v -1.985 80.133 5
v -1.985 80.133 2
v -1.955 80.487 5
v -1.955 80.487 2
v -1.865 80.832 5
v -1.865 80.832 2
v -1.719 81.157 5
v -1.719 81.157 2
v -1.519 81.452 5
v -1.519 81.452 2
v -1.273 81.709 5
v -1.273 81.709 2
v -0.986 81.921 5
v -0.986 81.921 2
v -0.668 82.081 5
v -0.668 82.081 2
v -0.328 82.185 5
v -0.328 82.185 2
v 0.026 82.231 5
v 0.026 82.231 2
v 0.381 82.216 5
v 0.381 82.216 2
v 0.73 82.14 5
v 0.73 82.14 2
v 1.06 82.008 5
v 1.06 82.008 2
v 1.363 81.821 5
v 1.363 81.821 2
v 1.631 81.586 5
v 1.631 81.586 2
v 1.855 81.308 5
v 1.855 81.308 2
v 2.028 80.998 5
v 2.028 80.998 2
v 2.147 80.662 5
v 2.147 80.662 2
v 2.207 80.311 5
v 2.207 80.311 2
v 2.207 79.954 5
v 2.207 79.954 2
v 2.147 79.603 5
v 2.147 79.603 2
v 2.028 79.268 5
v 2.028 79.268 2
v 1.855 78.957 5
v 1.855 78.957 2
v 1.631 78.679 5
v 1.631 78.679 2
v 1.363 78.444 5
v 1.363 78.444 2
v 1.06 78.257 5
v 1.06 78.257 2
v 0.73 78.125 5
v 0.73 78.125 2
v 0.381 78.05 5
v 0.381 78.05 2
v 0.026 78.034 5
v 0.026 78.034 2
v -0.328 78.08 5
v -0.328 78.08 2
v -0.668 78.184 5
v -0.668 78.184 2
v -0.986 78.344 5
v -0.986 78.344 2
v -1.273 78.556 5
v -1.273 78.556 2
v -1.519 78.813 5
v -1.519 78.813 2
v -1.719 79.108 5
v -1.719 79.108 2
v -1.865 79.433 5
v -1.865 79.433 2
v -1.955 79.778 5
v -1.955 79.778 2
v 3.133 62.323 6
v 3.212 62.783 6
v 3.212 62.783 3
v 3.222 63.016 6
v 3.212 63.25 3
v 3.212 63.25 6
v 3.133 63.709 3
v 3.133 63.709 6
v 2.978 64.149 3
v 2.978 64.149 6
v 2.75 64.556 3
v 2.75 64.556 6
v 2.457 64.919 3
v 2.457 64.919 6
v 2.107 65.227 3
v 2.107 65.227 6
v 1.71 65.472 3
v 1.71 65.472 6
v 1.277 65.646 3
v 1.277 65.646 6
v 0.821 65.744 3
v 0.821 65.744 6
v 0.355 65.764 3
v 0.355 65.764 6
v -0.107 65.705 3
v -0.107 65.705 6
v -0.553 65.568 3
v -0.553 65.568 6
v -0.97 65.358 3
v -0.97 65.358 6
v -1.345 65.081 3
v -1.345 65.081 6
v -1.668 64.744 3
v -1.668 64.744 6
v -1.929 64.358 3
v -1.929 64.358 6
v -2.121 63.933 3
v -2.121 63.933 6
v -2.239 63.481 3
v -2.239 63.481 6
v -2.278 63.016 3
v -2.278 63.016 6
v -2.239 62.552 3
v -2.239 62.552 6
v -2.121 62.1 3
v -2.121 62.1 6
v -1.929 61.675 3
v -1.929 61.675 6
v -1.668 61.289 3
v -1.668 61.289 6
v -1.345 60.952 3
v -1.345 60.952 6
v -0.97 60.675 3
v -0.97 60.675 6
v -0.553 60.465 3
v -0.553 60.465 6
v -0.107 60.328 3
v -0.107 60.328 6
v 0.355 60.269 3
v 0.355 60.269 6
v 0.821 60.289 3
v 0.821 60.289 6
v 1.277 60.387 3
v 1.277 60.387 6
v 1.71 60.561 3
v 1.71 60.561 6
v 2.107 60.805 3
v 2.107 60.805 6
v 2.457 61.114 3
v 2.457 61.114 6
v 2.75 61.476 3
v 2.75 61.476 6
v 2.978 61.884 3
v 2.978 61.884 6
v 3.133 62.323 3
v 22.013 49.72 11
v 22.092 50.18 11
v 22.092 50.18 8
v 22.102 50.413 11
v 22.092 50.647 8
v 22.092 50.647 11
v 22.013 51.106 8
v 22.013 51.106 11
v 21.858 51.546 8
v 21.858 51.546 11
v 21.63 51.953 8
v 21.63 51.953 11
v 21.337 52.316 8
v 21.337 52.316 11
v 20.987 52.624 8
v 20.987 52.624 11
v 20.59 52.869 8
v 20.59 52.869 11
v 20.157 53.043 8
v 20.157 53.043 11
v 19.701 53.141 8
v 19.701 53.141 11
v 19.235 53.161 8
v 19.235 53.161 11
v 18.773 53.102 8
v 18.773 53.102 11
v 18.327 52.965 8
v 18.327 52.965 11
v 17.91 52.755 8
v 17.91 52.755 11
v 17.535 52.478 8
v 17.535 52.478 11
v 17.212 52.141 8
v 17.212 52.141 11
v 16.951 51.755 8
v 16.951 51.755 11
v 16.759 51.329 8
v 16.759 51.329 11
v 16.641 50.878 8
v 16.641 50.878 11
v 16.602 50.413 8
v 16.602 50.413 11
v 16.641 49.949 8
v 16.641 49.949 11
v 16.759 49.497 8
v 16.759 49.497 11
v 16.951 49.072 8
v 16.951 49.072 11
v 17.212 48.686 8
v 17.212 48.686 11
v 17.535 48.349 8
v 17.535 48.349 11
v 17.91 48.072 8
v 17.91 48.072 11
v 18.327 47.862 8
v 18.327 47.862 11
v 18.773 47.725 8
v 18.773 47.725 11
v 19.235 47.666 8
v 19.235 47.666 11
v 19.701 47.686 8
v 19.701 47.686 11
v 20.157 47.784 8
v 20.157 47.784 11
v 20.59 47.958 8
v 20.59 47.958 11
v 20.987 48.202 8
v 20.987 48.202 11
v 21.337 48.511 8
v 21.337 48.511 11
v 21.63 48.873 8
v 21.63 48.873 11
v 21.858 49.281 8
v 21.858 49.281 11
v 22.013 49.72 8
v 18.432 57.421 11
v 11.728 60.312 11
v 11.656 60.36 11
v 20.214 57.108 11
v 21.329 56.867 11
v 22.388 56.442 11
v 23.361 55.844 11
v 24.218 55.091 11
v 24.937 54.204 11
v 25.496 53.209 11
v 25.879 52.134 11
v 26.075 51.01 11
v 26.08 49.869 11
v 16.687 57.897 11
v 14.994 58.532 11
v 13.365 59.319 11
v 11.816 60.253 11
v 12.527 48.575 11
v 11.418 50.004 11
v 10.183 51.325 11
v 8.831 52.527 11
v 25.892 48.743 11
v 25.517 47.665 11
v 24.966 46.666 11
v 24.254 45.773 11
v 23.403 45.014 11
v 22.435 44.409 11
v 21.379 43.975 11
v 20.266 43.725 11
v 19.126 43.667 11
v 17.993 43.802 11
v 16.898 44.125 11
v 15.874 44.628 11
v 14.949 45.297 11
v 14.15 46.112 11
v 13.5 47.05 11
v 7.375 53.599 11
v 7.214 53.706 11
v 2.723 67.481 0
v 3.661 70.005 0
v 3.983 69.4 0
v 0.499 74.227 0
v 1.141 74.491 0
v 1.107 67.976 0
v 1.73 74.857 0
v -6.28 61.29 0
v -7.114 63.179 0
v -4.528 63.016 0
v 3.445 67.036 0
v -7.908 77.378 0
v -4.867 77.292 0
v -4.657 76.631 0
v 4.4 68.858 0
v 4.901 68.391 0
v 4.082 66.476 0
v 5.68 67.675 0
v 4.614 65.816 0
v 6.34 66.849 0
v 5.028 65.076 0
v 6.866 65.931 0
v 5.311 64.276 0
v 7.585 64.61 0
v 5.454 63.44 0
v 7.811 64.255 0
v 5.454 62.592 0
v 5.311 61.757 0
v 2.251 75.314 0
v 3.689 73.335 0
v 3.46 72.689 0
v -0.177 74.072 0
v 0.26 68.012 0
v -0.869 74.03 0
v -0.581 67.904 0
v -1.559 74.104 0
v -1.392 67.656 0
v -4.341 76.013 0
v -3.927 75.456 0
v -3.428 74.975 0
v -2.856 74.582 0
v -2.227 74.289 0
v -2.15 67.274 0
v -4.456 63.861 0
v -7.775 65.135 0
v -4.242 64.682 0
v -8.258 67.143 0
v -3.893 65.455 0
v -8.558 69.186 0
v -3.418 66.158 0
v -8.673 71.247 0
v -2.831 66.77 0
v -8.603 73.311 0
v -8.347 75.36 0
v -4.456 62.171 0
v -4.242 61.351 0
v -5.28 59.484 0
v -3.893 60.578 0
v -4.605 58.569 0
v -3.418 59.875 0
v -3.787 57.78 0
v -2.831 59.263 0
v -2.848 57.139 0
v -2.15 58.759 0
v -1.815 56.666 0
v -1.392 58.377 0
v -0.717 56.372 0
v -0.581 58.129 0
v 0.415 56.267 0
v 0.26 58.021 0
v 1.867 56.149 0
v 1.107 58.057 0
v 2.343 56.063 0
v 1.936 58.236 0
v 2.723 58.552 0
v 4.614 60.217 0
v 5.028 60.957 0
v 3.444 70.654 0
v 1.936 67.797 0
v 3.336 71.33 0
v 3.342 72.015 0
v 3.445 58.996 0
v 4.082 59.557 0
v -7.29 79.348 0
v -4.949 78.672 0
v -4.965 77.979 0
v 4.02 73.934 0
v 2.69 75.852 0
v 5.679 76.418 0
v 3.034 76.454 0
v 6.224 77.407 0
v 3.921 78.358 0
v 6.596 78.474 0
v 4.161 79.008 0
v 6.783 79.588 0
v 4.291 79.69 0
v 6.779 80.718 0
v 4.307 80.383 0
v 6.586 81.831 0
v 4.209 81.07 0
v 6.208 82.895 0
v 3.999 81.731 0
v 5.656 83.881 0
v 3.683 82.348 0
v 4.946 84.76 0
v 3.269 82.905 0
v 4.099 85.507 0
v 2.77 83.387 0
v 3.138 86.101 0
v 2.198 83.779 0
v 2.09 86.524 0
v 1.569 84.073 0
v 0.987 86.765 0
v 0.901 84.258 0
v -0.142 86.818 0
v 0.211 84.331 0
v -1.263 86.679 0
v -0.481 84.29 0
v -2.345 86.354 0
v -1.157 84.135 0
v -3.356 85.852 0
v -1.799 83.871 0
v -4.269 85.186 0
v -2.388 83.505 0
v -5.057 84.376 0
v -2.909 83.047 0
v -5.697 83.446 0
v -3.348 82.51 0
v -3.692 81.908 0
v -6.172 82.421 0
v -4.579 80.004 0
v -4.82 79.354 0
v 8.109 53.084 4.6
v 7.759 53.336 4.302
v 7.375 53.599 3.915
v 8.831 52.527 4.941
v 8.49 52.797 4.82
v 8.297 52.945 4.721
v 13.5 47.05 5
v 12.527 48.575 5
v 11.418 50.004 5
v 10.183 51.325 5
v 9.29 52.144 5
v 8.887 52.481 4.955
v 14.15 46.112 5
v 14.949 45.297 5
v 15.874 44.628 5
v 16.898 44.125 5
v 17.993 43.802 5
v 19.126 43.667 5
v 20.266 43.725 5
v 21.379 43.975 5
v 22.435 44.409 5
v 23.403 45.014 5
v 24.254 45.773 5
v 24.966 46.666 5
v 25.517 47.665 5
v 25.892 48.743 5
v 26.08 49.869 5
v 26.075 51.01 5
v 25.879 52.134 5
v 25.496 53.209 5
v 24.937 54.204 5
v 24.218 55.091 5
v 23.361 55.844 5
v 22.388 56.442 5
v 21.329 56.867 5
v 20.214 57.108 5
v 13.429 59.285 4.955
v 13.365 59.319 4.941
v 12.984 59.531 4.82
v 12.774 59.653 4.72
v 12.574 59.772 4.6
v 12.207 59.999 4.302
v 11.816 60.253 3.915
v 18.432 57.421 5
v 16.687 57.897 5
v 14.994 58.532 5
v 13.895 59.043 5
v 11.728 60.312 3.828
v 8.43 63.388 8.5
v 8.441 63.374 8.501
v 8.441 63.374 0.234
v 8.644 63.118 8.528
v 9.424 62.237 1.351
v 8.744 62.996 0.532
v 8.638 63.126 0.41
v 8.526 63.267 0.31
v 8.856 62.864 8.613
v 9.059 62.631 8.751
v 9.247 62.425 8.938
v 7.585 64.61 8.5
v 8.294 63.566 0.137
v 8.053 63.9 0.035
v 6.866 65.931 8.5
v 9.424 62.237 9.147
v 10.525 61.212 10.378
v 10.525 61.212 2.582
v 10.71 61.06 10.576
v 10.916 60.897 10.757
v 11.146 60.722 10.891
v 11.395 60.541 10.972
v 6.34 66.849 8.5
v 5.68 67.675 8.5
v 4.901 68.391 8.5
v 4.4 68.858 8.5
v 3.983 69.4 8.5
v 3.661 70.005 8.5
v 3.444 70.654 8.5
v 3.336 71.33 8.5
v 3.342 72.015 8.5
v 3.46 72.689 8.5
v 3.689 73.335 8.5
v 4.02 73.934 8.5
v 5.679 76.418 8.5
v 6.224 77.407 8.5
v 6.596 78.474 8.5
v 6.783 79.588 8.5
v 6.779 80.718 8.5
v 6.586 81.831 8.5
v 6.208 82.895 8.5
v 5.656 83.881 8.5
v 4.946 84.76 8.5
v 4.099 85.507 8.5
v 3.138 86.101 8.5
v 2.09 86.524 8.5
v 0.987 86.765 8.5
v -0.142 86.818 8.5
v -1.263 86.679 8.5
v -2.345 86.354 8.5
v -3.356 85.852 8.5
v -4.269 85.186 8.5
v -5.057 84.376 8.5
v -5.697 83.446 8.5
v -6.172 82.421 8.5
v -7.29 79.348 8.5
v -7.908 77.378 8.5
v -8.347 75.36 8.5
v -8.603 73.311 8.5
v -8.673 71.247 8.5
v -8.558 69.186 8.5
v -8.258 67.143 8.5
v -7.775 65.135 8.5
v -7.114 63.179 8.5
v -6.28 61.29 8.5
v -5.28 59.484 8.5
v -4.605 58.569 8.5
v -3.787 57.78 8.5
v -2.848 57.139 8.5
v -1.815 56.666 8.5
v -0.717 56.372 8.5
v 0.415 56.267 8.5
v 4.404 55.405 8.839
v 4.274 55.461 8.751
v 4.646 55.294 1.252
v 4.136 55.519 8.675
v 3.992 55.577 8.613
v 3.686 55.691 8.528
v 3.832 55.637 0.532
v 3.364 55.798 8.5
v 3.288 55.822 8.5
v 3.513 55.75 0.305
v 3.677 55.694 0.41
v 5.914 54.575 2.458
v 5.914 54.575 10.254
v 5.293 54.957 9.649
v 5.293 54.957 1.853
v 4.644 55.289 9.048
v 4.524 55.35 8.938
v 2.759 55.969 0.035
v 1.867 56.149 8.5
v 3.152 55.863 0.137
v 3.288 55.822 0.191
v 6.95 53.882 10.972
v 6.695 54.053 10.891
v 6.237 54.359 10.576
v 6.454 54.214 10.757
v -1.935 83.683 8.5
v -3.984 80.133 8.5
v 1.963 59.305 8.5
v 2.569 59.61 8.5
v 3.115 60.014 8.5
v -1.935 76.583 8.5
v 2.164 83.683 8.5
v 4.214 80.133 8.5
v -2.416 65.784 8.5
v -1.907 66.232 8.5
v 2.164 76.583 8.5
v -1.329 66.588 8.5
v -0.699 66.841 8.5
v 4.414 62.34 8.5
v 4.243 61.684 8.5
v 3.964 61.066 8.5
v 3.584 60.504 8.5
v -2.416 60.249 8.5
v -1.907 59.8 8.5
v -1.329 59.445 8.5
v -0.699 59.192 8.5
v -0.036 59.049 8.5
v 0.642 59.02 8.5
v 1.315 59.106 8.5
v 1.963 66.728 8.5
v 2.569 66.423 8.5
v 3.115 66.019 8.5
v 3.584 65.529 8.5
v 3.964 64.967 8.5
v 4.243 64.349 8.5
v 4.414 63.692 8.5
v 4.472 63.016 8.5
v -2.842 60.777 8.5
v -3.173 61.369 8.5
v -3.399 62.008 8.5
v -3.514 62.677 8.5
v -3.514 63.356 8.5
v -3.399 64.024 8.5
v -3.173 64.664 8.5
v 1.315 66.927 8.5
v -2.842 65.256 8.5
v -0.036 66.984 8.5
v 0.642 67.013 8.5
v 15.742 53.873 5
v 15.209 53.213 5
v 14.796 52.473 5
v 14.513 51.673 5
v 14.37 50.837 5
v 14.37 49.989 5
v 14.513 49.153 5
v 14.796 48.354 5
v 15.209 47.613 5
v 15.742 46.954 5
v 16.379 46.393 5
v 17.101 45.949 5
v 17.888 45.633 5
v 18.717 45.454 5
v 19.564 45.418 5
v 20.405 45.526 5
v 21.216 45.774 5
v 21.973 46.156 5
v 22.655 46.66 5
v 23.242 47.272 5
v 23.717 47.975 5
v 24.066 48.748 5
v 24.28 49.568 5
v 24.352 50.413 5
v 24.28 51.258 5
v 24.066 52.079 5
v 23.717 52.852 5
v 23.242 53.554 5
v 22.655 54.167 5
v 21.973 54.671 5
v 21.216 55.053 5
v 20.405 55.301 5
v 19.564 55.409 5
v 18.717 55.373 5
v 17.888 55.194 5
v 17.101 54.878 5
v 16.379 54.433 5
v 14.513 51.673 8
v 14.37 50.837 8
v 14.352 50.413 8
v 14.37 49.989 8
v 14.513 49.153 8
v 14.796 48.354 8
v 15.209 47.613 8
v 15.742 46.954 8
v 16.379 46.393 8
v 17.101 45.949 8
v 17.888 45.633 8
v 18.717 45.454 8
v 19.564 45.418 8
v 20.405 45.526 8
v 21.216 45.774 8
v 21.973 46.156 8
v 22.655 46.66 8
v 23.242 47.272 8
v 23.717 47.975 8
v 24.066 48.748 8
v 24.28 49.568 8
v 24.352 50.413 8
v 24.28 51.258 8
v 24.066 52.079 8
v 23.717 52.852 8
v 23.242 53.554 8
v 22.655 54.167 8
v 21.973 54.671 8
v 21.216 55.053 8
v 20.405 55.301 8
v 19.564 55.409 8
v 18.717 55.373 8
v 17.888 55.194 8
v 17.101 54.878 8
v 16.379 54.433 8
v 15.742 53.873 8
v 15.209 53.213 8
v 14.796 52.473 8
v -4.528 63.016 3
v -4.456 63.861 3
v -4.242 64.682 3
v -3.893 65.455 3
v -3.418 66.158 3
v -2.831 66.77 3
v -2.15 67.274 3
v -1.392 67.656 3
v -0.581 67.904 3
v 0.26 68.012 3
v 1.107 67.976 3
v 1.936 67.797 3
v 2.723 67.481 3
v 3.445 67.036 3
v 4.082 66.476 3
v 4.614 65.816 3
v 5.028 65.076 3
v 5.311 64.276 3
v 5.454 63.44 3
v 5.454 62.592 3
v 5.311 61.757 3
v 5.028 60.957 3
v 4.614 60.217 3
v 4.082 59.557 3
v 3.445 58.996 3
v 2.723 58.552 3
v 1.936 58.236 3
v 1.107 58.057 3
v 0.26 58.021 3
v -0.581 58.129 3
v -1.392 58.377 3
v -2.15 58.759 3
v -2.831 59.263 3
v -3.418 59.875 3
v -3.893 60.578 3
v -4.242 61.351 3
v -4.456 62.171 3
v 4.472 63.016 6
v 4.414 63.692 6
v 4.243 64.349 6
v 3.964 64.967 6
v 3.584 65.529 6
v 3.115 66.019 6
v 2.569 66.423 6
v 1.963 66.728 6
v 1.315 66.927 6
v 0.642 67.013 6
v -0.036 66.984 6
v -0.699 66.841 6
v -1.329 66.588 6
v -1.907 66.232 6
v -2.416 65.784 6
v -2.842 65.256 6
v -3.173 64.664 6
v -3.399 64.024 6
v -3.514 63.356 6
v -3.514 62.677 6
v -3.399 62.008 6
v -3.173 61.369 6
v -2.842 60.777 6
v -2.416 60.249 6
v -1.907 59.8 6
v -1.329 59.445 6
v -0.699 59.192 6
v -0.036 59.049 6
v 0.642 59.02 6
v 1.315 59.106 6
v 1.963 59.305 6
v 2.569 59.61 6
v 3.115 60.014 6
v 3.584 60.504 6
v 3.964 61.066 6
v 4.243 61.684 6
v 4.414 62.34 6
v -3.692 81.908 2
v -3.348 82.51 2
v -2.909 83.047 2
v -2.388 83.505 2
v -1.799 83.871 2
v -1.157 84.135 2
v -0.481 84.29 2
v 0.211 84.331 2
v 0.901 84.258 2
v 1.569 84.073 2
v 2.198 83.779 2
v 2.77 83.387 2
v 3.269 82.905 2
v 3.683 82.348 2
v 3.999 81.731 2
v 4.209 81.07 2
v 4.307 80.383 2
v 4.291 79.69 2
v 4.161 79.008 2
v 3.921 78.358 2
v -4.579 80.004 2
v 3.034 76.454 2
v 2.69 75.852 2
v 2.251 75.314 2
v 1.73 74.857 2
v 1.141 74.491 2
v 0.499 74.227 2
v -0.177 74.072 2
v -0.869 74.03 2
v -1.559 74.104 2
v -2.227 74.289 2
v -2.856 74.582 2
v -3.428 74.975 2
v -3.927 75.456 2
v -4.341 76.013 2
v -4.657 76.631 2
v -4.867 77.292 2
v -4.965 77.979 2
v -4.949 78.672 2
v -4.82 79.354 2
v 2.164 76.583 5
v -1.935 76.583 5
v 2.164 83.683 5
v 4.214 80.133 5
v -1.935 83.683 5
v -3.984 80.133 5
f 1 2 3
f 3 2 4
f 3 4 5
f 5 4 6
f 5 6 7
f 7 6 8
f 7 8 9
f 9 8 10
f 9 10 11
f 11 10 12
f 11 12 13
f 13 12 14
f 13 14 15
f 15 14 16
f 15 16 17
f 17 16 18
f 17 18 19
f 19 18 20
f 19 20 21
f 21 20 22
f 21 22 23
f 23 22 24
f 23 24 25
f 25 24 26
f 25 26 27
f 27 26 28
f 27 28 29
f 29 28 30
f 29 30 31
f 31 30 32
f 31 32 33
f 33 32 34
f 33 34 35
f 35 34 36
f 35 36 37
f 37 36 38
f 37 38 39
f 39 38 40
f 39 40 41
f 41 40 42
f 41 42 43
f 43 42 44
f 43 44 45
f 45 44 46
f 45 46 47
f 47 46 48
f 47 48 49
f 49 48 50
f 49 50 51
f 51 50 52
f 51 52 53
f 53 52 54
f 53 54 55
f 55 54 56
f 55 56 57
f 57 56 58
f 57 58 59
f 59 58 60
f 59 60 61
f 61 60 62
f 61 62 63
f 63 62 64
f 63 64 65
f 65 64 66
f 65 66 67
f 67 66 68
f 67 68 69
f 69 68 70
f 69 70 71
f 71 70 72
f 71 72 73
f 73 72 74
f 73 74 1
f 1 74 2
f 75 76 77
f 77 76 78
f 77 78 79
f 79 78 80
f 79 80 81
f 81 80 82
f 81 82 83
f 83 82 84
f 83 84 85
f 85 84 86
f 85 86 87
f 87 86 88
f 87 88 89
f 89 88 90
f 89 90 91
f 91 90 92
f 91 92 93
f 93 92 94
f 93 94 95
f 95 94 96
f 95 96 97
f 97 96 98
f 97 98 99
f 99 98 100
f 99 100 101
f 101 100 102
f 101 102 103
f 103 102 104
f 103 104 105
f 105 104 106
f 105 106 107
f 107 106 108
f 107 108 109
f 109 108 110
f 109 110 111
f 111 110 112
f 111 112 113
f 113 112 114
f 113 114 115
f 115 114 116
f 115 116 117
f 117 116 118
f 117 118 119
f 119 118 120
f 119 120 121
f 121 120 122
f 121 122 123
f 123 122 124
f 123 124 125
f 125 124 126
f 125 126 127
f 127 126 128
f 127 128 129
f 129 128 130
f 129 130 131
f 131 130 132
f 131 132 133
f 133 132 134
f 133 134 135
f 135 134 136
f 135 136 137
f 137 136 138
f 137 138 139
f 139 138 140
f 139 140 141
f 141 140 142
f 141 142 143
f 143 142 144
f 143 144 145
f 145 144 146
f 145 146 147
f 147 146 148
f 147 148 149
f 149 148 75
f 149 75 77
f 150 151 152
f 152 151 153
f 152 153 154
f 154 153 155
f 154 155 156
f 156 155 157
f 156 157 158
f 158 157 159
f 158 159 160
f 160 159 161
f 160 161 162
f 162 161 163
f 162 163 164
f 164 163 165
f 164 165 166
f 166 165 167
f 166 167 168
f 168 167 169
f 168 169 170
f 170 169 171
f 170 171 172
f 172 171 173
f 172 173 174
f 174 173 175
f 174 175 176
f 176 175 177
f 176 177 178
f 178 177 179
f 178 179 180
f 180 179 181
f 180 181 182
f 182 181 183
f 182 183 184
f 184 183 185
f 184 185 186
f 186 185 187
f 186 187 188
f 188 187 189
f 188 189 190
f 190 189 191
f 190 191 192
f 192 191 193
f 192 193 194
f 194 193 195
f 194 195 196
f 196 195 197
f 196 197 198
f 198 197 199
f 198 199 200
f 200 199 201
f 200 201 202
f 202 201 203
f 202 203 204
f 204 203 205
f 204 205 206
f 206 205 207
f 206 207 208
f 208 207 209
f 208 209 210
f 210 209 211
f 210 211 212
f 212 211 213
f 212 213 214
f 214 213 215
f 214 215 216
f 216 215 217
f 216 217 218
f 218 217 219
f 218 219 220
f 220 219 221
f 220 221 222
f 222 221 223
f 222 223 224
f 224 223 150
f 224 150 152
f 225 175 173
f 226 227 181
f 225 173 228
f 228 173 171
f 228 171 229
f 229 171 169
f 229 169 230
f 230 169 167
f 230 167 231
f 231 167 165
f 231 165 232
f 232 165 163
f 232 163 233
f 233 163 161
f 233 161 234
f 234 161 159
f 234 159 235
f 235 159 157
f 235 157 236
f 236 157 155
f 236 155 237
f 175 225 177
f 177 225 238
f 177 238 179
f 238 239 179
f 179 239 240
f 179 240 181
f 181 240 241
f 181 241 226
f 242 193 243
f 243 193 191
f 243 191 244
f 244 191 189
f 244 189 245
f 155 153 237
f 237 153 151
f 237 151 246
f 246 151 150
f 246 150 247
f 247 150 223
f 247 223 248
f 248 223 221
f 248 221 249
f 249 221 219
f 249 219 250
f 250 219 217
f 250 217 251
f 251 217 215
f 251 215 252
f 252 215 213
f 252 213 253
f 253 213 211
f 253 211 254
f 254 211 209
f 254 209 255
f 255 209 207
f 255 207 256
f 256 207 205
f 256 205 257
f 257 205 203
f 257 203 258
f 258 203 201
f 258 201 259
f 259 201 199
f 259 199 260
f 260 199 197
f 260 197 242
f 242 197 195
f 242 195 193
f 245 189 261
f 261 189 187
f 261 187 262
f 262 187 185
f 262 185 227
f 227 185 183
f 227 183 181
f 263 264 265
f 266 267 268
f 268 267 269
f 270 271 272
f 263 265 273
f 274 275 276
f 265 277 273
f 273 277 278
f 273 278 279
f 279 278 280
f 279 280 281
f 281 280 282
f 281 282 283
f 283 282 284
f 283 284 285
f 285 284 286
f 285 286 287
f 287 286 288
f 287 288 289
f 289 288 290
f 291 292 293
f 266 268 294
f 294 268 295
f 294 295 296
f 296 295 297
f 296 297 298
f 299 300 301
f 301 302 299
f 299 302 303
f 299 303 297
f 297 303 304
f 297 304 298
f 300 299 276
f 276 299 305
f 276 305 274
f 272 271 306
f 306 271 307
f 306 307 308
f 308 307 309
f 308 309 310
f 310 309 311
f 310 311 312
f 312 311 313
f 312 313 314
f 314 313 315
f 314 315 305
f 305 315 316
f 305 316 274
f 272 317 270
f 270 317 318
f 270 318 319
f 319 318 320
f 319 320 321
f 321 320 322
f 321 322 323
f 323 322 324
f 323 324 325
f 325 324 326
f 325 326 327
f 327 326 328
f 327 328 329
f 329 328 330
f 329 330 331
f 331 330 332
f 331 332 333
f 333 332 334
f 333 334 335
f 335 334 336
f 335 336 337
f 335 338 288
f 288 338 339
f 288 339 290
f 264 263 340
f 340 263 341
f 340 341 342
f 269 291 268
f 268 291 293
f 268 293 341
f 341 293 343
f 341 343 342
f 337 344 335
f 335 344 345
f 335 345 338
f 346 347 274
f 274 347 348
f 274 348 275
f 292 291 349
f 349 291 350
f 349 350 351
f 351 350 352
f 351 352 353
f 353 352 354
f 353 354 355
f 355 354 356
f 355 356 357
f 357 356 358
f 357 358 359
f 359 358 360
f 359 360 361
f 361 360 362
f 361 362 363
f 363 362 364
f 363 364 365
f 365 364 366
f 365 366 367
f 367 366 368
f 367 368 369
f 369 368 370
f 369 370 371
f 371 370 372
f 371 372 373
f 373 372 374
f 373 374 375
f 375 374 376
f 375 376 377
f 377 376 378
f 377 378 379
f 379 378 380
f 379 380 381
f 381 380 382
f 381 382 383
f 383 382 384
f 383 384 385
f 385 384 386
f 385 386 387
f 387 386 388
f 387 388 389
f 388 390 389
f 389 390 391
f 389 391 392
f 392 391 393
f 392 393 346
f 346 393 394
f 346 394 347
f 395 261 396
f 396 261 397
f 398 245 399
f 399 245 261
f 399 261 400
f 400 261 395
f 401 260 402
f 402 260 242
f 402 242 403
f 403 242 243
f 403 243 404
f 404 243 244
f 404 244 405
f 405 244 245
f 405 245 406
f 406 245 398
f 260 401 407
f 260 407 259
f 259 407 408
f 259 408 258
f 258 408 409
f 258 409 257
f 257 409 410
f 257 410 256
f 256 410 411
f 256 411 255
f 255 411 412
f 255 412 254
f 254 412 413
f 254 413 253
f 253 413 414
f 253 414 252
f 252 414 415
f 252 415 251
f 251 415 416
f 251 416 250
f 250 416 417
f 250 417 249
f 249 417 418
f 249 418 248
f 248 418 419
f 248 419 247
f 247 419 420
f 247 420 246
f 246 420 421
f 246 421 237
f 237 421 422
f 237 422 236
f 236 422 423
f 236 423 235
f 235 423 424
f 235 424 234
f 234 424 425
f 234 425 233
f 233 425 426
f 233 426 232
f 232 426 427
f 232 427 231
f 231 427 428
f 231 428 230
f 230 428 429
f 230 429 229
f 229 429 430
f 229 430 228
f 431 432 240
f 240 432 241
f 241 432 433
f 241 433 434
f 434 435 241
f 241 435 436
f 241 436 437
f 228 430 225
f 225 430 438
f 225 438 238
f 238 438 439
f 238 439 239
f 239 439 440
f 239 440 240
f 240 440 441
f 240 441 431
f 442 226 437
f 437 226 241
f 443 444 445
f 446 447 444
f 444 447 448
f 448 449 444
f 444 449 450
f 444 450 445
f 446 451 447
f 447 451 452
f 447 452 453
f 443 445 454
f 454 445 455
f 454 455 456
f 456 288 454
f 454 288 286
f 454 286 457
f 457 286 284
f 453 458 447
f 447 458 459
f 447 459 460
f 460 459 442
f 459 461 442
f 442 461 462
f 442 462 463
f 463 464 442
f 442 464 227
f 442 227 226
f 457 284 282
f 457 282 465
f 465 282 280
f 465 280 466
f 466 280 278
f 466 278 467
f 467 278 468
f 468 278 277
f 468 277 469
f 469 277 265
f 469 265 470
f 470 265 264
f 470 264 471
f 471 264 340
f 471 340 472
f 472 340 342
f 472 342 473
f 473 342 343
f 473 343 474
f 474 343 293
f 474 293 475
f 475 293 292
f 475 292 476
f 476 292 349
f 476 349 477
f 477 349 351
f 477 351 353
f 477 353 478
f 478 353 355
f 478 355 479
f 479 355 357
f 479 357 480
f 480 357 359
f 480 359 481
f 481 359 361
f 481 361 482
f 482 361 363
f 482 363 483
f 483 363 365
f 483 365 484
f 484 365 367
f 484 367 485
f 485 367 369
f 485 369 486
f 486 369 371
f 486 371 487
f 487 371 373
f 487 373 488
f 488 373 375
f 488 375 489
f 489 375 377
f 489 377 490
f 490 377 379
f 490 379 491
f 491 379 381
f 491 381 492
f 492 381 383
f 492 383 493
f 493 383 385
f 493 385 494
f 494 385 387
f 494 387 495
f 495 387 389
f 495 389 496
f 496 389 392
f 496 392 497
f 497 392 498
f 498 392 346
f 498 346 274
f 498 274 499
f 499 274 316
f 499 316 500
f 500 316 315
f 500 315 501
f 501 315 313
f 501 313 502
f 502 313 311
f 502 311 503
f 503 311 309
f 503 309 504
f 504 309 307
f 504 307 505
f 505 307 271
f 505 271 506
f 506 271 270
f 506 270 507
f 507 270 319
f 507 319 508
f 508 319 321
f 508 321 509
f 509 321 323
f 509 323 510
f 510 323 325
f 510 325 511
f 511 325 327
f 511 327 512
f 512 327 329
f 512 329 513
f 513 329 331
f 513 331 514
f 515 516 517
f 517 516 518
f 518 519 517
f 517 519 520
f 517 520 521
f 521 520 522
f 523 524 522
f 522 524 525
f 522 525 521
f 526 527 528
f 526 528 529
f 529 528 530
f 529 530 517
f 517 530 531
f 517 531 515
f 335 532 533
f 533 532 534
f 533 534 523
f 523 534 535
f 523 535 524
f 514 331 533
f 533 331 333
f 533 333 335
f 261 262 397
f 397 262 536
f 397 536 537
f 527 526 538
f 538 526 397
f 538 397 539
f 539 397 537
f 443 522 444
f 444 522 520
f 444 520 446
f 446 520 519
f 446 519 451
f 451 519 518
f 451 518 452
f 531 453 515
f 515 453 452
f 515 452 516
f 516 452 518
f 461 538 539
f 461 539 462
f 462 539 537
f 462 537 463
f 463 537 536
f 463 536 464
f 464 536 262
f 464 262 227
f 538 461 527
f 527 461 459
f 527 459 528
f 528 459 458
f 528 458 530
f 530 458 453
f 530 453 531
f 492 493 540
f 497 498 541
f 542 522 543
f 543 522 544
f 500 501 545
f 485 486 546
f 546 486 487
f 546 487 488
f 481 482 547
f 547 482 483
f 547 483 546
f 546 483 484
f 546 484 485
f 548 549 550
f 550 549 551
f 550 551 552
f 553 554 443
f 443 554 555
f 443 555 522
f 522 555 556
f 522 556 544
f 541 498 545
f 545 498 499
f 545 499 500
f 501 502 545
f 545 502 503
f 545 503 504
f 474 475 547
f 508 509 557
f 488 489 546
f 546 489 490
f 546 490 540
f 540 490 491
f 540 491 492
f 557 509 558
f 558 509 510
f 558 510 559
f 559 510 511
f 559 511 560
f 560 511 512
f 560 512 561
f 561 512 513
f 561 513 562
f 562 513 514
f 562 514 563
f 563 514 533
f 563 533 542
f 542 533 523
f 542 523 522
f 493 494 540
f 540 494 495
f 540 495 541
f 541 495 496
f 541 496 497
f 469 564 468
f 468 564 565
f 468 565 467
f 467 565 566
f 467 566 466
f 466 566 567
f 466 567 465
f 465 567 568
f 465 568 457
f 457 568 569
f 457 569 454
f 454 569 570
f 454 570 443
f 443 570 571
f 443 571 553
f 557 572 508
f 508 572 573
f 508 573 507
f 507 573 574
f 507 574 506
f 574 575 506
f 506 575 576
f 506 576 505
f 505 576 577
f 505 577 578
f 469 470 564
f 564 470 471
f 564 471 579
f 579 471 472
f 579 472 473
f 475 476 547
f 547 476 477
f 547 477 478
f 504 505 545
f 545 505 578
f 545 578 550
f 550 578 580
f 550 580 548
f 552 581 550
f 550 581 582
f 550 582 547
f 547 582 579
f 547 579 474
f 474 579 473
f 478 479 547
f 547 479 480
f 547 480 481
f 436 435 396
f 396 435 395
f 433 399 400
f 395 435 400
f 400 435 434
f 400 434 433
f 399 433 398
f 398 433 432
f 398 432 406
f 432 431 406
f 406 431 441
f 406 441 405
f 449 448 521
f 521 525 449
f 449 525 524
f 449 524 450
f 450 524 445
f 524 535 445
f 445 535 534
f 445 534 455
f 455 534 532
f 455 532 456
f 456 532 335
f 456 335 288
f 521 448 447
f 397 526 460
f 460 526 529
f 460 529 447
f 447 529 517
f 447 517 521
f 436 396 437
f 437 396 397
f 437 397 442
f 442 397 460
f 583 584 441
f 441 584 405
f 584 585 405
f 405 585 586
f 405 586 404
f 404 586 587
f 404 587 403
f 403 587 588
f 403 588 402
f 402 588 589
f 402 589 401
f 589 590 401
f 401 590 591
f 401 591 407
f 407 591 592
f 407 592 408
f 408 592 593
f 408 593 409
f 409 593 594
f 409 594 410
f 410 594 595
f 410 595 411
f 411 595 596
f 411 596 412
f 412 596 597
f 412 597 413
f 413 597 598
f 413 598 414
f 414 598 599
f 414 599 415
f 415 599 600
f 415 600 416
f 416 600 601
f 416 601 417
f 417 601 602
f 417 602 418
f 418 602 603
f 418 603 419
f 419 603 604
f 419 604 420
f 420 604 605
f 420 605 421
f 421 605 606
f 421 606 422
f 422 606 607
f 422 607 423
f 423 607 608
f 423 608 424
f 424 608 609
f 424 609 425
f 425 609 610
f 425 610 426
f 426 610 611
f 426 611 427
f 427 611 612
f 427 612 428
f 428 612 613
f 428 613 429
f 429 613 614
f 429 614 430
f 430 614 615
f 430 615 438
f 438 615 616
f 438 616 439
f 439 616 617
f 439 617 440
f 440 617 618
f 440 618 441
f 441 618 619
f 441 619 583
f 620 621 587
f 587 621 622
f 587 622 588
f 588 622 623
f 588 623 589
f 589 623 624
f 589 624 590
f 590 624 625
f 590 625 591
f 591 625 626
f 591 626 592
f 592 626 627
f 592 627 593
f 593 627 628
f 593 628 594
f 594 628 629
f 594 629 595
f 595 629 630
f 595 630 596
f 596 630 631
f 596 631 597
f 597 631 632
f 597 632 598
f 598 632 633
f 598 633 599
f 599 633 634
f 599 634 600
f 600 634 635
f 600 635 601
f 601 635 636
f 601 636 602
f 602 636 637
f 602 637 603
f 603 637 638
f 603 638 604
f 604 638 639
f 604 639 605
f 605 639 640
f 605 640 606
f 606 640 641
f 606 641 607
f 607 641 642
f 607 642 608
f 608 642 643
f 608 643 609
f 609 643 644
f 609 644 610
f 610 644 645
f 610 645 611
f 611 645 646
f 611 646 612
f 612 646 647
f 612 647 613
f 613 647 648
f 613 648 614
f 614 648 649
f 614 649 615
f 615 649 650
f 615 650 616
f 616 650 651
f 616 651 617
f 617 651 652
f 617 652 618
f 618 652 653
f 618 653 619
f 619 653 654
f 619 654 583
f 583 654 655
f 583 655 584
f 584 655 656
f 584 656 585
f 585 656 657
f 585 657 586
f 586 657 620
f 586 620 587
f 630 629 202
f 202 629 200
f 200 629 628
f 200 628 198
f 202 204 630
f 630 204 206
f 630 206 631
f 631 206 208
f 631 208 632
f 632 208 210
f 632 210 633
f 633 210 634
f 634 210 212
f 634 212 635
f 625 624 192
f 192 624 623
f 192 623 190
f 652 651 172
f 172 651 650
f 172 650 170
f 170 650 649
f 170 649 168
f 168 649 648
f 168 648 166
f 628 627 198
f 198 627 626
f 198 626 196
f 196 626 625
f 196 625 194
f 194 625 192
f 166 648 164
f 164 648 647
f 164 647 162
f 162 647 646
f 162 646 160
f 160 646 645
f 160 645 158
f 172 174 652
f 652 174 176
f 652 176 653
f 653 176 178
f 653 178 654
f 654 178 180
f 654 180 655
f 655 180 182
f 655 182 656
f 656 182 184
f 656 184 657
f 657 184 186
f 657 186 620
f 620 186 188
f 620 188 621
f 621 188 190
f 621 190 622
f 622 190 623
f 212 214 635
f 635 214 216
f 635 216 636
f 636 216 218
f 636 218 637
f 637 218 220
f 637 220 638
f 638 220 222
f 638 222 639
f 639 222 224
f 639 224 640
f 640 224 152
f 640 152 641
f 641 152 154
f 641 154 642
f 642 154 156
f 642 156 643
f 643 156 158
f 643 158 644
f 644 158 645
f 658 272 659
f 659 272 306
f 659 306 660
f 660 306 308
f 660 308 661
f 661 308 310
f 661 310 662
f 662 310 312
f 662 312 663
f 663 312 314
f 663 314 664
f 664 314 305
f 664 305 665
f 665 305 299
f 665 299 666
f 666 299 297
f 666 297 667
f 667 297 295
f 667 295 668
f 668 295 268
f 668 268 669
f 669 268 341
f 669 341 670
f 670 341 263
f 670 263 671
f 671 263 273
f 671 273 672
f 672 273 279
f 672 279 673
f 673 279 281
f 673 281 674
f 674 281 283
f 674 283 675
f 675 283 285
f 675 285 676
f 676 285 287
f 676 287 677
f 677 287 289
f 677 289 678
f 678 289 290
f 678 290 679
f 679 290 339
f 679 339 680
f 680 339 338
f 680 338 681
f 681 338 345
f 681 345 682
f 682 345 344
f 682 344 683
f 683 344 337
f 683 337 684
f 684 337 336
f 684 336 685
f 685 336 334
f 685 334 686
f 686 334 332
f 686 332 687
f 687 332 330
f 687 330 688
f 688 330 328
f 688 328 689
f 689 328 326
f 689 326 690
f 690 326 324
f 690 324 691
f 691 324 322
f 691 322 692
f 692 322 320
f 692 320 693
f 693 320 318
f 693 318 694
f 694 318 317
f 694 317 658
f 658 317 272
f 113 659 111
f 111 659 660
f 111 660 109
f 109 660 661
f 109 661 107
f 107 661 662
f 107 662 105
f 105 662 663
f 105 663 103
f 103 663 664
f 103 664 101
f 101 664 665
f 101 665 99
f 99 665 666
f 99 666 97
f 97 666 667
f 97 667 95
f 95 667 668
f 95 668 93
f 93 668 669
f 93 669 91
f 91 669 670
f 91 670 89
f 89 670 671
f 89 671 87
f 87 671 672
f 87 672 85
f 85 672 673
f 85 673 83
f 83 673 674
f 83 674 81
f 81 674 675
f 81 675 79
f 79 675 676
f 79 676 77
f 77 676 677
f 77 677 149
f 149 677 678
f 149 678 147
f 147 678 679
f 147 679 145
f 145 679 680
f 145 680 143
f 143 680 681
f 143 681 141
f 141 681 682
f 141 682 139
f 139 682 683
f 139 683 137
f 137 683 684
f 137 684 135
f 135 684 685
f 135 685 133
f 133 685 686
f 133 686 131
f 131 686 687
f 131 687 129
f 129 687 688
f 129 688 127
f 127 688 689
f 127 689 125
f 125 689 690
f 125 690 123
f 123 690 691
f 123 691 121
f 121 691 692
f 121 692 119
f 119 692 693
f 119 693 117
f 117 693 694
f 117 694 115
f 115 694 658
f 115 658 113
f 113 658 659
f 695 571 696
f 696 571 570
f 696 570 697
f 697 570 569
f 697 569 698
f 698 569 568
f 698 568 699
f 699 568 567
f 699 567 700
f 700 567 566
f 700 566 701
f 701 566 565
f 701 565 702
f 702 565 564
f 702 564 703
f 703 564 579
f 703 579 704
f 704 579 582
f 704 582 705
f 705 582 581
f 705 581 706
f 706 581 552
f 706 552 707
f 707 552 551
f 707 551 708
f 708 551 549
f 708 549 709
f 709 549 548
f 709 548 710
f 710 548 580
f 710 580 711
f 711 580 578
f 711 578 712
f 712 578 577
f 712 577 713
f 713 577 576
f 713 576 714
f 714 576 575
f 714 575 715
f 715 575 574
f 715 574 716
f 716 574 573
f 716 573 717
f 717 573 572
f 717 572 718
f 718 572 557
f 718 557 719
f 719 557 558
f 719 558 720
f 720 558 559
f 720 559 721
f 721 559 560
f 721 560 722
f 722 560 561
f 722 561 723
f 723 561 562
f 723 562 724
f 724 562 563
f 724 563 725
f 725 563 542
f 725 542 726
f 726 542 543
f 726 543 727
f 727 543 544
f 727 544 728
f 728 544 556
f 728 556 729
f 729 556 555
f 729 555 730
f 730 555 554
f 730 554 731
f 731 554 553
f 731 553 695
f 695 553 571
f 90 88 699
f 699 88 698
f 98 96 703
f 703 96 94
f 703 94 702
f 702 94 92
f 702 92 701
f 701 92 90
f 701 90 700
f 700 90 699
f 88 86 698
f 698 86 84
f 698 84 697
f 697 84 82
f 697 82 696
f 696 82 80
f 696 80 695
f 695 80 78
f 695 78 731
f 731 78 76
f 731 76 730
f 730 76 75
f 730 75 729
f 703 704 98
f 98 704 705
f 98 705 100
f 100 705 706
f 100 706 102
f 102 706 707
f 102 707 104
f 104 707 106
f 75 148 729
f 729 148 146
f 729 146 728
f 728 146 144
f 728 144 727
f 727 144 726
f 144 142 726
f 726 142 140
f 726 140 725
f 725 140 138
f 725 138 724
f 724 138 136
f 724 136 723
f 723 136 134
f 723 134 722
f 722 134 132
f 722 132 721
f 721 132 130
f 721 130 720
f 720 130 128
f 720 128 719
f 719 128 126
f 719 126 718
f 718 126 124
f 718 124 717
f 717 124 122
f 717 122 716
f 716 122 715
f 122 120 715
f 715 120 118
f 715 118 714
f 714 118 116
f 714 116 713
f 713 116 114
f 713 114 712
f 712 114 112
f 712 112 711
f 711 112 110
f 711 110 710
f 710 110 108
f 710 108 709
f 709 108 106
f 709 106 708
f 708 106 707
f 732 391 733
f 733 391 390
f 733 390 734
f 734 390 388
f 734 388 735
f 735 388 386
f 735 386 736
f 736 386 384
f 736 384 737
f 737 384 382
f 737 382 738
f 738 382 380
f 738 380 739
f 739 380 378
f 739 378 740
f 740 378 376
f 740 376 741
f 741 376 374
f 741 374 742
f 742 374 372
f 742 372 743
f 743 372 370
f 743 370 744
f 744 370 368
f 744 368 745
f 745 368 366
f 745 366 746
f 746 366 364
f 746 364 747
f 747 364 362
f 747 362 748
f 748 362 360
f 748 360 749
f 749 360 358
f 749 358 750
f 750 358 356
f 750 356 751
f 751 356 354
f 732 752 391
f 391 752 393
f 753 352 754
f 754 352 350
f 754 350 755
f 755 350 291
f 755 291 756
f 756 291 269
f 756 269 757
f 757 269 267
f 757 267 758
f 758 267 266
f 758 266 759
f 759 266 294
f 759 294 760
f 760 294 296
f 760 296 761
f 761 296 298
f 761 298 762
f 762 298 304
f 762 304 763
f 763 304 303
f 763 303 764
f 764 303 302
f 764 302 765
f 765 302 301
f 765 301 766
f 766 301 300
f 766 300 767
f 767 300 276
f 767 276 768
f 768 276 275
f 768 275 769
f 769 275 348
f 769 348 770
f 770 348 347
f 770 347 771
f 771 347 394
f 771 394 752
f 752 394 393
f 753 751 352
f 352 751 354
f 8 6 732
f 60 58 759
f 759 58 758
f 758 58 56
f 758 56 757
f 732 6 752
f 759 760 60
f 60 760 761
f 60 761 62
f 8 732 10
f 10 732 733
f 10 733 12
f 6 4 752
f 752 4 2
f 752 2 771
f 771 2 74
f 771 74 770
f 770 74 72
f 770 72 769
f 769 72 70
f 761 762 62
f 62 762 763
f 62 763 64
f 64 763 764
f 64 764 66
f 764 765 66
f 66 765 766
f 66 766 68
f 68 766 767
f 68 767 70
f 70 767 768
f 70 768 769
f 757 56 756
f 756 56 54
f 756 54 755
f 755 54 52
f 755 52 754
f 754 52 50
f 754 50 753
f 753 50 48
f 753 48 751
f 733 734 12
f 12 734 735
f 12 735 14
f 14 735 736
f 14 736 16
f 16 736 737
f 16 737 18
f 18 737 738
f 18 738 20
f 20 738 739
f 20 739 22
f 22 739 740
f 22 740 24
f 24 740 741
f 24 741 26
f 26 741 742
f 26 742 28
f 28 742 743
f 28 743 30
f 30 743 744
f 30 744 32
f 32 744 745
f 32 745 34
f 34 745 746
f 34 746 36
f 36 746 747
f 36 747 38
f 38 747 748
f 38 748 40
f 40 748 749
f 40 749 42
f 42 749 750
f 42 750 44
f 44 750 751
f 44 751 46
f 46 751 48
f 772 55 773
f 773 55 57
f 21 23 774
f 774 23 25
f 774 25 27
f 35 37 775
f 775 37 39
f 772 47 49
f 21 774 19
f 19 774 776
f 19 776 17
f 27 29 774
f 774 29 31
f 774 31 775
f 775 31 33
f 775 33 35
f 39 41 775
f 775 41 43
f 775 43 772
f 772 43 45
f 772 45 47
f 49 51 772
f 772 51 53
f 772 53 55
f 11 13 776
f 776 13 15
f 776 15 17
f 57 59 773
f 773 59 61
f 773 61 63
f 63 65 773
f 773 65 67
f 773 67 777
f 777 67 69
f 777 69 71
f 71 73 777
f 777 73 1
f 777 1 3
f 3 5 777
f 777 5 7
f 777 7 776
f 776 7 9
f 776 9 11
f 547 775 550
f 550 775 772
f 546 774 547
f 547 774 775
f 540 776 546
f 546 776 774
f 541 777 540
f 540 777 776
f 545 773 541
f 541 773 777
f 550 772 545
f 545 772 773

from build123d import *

# Parameters (mm, degrees)
SKETCH3_R               = 2.75
SKETCH3_R_2             = 2.1
BOSS_EXTRUDE2_DEPTH     = 11
CUT_EXTRUDE3_DEPTH      = 58.508197856
CUT_EXTRUDE3_DEPTH_BACK = 58.508197856
CUT_EXTRUDE5_DEPTH      = 91.859562292
CUT_EXTRUDE5_DEPTH_BACK = 3
SKETCH9_R               = 5
SKETCH10_R              = 5
CUT_EXTRUDE6_DEPTH      = 3
SKETCH11_R              = 4
CUT_EXTRUDE7_DEPTH      = 2.5
CUT_EXTRUDE8_DEPTH      = 2
CUT_EXTRUDE9_DEPTH      = 3.5


with BuildPart() as part:
    # Sketch3 → Boss-Extrude2 (new body)
    with BuildSketch(Plane.XY):
        with BuildLine():
            Line((11.81639044, 60.252883085), (11.728372068, 60.311638564))
            ThreePointArc((11.728372068, 60.311638564), (8.917204522, 62.7925154), (6.866230988, 65.931132995))
            ThreePointArc((6.866230988, 65.931132995), (6.025591445, 67.274340702), (4.901176311, 68.390840765))
            ThreePointArc((4.901176311, 68.390840765), (3.375934297, 70.989881123), (4.020351516, 73.93370524))
            Line((4.020351516, 73.93370524), (5.678869184, 76.41823992))
            ThreePointArc((5.678869184, 76.41823992), (3.137547336, 86.100651278), (-6.171856019, 82.420649156))
            Line((-6.171856019, 82.420649156), (-7.290261888, 79.347854286))
            ThreePointArc((-7.290261888, 79.347854286), (-8.557893098, 69.185727028), (-5.279809822, 59.483671095))
            ThreePointArc((-5.279809822, 59.483671095), (-2.848156457, 57.139360441), (0.414833066, 56.266646336))
            ThreePointArc((0.414833066, 56.266646336), (3.287818882, 55.822166382), (5.91364728, 54.574514525))
            Line((5.91364728, 54.574514525), (7.374782695, 53.599153256))
            ThreePointArc((7.374782695, 53.599153256), (10.815902262, 50.678650143), (13.499590609, 47.049812979))
            ThreePointArc((13.499590609, 47.049812979), (24.965953819, 46.665736496), (20.21385057, 57.108078892))
            ThreePointArc((20.21385057, 57.108078892), (15.833272198, 58.194897845), (11.81639044, 60.252883085))
        make_face()
        with Locations((19.351869275, 50.413343031)):
            Circle(SKETCH3_R, mode=Mode.SUBTRACT)
        with Locations((0.471910886, 63.016405008)):
            Circle(SKETCH3_R, mode=Mode.SUBTRACT)
        with Locations((0.114687614, 80.132534397)):
            Circle(SKETCH3_R_2, mode=Mode.SUBTRACT)
    extrude(amount=BOSS_EXTRUDE2_DEPTH)

    # Sketch8 → Cut-Extrude3 (cut, two sides: drawn at the far end of the back side and taken through both)
    with BuildSketch(Plane(origin=(31.465333136, 47.136495989, 0), x_dir=(0.8317162286287604, -0.5552009681507695, 0), z_dir=(0.5552009681507695, 0.8317162286287604, 0)).offset(-CUT_EXTRUDE3_DEPTH_BACK)):
        with BuildLine():
            Line((-28.1811996, -8.5), (-53.409946657, -8.5))
            Line((-53.409946657, -8.5), (-53.409946657, -11))
            Line((-53.409946657, -11), (-23.817856355, -11))
            ThreePointArc((-23.817856355, -11), (-24.442424101, -10.890774833), (-24.99285353, -10.576064729))
            Line((-24.99285353, -10.576064729), (-26.967564109, -8.937875854))
            ThreePointArc((-26.967564109, -8.937875854), (-27.536093723, -8.612816901), (-28.1811996, -8.5))
        make_face()
        with BuildLine():
            Line((-29.17758863, 0), (1.736877707, 0))
            Line((1.736877707, 0), (1.736877707, -5))
            Line((1.736877707, -5), (-21.22396203, -5))
            ThreePointArc((-21.22396203, -5), (-22.252174442, -4.820184962), (-23.158334542, -4.302084505))
            Line((-23.158334542, -4.302084505), (-27.702732311, -0.532123504))
            ThreePointArc((-27.702732311, -0.532123504), (-28.393631267, -0.137099418), (-29.17758863, 0))
        make_face()
    extrude(amount=CUT_EXTRUDE3_DEPTH + CUT_EXTRUDE3_DEPTH_BACK, mode=Mode.SUBTRACT)

    # Sketch9 → Cut-Extrude5 (cut, two sides: drawn at the far end of the back side and taken through both)
    with BuildSketch(Plane(origin=(0, 0, 5), x_dir=(-1, 0, 0), z_dir=(0, 0, -1)).offset(-CUT_EXTRUDE5_DEPTH_BACK)):
        with Locations(Location((-19.351869275, 50.413343031, 0), (0, 0, 180))):
            Circle(SKETCH9_R)
    extrude(amount=CUT_EXTRUDE5_DEPTH + CUT_EXTRUDE5_DEPTH_BACK, mode=Mode.SUBTRACT)

    # Sketch10 → Cut-Extrude6 (cut)
    with BuildSketch(Plane(origin=(0, 0, 0), x_dir=(-1, 0, 0), z_dir=(0, 0, -1))):
        with Locations((-0.471910886, 63.016405008)):
            Circle(SKETCH10_R)
    extrude(amount=-CUT_EXTRUDE6_DEPTH, mode=Mode.SUBTRACT)

    # Sketch11 → Cut-Extrude7 (cut)
    with BuildSketch(Plane.XY.offset(8.5)):
        with Locations((0.471910886, 63.016405008)):
            Circle(SKETCH11_R)
    extrude(amount=-CUT_EXTRUDE7_DEPTH, mode=Mode.SUBTRACT)

    # Sketch12 → Cut-Extrude8 (cut)
    with BuildSketch(Plane(origin=(0, 0, 0), x_dir=(-1, 0, 0), z_dir=(0, 0, -1))):
        with BuildLine():
            Line((3.691805092, 81.907531096), (4.579303441, 80.004284743))
            ThreePointArc((4.579303441, 80.004284743), (2.547807435, 74.422795339), (-3.03368197, 76.454291345))
            Line((-3.03368197, 76.454291345), (-3.92118032, 78.357537698))
            ThreePointArc((-3.92118032, 78.357537698), (-1.889684313, 83.939027102), (3.691805092, 81.907531096))
        make_face()
    extrude(amount=-CUT_EXTRUDE8_DEPTH, mode=Mode.SUBTRACT)

    # Sketch7 → Cut-Extrude9 (cut)
    with BuildSketch(Plane.XY.offset(8.5)):
        Polygon((2.16428107, 76.582534397), (4.213874525, 80.132534397), (2.16428107, 83.682534397), (-1.934905842, 83.682534397), (-3.984499297, 80.132534397), (-1.934905842, 76.582534397), align=None)
    extrude(amount=-CUT_EXTRUDE9_DEPTH, mode=Mode.SUBTRACT)


solid = part.part
